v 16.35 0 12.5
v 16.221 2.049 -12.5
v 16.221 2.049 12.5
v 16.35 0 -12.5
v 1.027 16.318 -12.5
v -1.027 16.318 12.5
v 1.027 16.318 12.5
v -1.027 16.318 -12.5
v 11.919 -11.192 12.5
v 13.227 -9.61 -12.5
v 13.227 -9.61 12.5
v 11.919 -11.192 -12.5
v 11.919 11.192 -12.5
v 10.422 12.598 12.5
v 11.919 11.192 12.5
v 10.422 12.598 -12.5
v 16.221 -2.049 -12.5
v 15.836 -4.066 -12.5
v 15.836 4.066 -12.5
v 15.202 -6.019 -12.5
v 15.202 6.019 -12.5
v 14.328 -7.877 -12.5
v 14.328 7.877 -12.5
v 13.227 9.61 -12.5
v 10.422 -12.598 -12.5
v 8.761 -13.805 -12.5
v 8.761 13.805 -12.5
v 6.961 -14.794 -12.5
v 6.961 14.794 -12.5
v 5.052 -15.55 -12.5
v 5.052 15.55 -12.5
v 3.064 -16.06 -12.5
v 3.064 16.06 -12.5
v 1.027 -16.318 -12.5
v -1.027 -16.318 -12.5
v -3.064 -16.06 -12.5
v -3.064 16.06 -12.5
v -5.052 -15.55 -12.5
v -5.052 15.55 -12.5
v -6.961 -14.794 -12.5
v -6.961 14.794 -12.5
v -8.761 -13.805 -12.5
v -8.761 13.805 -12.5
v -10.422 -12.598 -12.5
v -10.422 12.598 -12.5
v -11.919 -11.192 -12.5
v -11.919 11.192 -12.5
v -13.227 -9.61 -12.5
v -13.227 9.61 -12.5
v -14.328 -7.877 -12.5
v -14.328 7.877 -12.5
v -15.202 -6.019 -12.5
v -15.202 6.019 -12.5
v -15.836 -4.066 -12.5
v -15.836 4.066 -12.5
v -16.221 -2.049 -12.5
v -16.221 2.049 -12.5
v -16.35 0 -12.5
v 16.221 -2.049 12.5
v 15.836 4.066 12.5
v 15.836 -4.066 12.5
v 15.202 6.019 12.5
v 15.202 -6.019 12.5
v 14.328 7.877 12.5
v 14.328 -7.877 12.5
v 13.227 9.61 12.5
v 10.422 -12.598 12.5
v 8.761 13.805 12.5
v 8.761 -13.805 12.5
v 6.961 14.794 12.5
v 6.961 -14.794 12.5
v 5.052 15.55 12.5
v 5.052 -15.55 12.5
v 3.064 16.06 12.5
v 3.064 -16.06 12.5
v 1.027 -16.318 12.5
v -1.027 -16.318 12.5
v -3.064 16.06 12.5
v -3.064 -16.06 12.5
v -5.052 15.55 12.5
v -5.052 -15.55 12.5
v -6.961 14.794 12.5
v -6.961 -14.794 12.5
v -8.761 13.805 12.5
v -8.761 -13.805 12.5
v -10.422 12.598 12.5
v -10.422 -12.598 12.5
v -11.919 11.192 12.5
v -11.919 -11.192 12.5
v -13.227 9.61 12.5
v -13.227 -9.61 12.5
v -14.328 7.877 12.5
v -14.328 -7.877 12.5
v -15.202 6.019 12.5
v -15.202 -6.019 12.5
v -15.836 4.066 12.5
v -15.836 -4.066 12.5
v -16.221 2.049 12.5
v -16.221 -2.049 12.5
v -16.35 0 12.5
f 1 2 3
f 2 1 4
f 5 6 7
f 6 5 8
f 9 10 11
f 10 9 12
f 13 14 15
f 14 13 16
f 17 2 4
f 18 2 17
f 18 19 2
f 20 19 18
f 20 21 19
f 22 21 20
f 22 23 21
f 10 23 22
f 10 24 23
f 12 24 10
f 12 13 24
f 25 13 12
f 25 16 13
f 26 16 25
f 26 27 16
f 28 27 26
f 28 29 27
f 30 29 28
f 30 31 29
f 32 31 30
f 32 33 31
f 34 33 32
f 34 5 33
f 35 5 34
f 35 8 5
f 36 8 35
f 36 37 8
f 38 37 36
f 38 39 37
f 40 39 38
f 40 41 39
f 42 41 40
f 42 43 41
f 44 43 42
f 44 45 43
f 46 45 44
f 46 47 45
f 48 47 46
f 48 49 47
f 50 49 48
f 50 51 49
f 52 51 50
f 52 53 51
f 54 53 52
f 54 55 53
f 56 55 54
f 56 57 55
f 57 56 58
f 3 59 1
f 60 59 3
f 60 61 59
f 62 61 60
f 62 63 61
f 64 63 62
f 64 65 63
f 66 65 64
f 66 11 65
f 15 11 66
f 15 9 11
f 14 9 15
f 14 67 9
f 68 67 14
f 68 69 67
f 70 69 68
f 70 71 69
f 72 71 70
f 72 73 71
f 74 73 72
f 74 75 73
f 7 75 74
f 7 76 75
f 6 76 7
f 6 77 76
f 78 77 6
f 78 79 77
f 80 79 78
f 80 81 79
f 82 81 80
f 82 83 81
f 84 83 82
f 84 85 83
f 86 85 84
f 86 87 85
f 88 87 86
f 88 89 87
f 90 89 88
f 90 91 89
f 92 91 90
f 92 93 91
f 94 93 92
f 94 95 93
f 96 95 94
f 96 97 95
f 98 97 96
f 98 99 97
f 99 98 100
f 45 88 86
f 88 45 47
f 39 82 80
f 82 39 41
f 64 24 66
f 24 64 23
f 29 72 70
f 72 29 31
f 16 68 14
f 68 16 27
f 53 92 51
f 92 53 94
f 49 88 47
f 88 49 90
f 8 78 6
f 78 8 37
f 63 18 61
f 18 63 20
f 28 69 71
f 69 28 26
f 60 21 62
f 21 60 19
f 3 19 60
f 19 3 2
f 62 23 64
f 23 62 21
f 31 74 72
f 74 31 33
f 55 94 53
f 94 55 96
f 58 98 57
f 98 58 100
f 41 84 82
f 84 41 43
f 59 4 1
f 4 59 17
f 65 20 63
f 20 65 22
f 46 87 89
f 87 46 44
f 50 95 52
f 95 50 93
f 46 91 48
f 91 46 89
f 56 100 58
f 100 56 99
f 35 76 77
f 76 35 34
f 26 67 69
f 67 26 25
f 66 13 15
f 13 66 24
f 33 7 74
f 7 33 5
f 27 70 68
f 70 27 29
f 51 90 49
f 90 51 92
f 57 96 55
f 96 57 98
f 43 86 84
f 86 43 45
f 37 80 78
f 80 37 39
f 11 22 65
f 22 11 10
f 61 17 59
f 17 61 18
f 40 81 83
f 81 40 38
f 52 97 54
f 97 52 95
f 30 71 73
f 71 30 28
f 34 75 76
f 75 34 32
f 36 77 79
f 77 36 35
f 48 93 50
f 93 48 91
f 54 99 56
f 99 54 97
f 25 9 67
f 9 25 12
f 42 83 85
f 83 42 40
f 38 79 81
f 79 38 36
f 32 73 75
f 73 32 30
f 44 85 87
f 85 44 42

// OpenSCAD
$fn = 50;


difference() {
	union() {
		translate(v = [0, 0, -12.5000000000]) {
			cylinder(h = 25, r = 16.3500000000);
		}
	}
	union() {
		translate(v = [0, 0, -100.0000000000]) {
			cylinder(h = 200, r = 0);
		}
	}
}
